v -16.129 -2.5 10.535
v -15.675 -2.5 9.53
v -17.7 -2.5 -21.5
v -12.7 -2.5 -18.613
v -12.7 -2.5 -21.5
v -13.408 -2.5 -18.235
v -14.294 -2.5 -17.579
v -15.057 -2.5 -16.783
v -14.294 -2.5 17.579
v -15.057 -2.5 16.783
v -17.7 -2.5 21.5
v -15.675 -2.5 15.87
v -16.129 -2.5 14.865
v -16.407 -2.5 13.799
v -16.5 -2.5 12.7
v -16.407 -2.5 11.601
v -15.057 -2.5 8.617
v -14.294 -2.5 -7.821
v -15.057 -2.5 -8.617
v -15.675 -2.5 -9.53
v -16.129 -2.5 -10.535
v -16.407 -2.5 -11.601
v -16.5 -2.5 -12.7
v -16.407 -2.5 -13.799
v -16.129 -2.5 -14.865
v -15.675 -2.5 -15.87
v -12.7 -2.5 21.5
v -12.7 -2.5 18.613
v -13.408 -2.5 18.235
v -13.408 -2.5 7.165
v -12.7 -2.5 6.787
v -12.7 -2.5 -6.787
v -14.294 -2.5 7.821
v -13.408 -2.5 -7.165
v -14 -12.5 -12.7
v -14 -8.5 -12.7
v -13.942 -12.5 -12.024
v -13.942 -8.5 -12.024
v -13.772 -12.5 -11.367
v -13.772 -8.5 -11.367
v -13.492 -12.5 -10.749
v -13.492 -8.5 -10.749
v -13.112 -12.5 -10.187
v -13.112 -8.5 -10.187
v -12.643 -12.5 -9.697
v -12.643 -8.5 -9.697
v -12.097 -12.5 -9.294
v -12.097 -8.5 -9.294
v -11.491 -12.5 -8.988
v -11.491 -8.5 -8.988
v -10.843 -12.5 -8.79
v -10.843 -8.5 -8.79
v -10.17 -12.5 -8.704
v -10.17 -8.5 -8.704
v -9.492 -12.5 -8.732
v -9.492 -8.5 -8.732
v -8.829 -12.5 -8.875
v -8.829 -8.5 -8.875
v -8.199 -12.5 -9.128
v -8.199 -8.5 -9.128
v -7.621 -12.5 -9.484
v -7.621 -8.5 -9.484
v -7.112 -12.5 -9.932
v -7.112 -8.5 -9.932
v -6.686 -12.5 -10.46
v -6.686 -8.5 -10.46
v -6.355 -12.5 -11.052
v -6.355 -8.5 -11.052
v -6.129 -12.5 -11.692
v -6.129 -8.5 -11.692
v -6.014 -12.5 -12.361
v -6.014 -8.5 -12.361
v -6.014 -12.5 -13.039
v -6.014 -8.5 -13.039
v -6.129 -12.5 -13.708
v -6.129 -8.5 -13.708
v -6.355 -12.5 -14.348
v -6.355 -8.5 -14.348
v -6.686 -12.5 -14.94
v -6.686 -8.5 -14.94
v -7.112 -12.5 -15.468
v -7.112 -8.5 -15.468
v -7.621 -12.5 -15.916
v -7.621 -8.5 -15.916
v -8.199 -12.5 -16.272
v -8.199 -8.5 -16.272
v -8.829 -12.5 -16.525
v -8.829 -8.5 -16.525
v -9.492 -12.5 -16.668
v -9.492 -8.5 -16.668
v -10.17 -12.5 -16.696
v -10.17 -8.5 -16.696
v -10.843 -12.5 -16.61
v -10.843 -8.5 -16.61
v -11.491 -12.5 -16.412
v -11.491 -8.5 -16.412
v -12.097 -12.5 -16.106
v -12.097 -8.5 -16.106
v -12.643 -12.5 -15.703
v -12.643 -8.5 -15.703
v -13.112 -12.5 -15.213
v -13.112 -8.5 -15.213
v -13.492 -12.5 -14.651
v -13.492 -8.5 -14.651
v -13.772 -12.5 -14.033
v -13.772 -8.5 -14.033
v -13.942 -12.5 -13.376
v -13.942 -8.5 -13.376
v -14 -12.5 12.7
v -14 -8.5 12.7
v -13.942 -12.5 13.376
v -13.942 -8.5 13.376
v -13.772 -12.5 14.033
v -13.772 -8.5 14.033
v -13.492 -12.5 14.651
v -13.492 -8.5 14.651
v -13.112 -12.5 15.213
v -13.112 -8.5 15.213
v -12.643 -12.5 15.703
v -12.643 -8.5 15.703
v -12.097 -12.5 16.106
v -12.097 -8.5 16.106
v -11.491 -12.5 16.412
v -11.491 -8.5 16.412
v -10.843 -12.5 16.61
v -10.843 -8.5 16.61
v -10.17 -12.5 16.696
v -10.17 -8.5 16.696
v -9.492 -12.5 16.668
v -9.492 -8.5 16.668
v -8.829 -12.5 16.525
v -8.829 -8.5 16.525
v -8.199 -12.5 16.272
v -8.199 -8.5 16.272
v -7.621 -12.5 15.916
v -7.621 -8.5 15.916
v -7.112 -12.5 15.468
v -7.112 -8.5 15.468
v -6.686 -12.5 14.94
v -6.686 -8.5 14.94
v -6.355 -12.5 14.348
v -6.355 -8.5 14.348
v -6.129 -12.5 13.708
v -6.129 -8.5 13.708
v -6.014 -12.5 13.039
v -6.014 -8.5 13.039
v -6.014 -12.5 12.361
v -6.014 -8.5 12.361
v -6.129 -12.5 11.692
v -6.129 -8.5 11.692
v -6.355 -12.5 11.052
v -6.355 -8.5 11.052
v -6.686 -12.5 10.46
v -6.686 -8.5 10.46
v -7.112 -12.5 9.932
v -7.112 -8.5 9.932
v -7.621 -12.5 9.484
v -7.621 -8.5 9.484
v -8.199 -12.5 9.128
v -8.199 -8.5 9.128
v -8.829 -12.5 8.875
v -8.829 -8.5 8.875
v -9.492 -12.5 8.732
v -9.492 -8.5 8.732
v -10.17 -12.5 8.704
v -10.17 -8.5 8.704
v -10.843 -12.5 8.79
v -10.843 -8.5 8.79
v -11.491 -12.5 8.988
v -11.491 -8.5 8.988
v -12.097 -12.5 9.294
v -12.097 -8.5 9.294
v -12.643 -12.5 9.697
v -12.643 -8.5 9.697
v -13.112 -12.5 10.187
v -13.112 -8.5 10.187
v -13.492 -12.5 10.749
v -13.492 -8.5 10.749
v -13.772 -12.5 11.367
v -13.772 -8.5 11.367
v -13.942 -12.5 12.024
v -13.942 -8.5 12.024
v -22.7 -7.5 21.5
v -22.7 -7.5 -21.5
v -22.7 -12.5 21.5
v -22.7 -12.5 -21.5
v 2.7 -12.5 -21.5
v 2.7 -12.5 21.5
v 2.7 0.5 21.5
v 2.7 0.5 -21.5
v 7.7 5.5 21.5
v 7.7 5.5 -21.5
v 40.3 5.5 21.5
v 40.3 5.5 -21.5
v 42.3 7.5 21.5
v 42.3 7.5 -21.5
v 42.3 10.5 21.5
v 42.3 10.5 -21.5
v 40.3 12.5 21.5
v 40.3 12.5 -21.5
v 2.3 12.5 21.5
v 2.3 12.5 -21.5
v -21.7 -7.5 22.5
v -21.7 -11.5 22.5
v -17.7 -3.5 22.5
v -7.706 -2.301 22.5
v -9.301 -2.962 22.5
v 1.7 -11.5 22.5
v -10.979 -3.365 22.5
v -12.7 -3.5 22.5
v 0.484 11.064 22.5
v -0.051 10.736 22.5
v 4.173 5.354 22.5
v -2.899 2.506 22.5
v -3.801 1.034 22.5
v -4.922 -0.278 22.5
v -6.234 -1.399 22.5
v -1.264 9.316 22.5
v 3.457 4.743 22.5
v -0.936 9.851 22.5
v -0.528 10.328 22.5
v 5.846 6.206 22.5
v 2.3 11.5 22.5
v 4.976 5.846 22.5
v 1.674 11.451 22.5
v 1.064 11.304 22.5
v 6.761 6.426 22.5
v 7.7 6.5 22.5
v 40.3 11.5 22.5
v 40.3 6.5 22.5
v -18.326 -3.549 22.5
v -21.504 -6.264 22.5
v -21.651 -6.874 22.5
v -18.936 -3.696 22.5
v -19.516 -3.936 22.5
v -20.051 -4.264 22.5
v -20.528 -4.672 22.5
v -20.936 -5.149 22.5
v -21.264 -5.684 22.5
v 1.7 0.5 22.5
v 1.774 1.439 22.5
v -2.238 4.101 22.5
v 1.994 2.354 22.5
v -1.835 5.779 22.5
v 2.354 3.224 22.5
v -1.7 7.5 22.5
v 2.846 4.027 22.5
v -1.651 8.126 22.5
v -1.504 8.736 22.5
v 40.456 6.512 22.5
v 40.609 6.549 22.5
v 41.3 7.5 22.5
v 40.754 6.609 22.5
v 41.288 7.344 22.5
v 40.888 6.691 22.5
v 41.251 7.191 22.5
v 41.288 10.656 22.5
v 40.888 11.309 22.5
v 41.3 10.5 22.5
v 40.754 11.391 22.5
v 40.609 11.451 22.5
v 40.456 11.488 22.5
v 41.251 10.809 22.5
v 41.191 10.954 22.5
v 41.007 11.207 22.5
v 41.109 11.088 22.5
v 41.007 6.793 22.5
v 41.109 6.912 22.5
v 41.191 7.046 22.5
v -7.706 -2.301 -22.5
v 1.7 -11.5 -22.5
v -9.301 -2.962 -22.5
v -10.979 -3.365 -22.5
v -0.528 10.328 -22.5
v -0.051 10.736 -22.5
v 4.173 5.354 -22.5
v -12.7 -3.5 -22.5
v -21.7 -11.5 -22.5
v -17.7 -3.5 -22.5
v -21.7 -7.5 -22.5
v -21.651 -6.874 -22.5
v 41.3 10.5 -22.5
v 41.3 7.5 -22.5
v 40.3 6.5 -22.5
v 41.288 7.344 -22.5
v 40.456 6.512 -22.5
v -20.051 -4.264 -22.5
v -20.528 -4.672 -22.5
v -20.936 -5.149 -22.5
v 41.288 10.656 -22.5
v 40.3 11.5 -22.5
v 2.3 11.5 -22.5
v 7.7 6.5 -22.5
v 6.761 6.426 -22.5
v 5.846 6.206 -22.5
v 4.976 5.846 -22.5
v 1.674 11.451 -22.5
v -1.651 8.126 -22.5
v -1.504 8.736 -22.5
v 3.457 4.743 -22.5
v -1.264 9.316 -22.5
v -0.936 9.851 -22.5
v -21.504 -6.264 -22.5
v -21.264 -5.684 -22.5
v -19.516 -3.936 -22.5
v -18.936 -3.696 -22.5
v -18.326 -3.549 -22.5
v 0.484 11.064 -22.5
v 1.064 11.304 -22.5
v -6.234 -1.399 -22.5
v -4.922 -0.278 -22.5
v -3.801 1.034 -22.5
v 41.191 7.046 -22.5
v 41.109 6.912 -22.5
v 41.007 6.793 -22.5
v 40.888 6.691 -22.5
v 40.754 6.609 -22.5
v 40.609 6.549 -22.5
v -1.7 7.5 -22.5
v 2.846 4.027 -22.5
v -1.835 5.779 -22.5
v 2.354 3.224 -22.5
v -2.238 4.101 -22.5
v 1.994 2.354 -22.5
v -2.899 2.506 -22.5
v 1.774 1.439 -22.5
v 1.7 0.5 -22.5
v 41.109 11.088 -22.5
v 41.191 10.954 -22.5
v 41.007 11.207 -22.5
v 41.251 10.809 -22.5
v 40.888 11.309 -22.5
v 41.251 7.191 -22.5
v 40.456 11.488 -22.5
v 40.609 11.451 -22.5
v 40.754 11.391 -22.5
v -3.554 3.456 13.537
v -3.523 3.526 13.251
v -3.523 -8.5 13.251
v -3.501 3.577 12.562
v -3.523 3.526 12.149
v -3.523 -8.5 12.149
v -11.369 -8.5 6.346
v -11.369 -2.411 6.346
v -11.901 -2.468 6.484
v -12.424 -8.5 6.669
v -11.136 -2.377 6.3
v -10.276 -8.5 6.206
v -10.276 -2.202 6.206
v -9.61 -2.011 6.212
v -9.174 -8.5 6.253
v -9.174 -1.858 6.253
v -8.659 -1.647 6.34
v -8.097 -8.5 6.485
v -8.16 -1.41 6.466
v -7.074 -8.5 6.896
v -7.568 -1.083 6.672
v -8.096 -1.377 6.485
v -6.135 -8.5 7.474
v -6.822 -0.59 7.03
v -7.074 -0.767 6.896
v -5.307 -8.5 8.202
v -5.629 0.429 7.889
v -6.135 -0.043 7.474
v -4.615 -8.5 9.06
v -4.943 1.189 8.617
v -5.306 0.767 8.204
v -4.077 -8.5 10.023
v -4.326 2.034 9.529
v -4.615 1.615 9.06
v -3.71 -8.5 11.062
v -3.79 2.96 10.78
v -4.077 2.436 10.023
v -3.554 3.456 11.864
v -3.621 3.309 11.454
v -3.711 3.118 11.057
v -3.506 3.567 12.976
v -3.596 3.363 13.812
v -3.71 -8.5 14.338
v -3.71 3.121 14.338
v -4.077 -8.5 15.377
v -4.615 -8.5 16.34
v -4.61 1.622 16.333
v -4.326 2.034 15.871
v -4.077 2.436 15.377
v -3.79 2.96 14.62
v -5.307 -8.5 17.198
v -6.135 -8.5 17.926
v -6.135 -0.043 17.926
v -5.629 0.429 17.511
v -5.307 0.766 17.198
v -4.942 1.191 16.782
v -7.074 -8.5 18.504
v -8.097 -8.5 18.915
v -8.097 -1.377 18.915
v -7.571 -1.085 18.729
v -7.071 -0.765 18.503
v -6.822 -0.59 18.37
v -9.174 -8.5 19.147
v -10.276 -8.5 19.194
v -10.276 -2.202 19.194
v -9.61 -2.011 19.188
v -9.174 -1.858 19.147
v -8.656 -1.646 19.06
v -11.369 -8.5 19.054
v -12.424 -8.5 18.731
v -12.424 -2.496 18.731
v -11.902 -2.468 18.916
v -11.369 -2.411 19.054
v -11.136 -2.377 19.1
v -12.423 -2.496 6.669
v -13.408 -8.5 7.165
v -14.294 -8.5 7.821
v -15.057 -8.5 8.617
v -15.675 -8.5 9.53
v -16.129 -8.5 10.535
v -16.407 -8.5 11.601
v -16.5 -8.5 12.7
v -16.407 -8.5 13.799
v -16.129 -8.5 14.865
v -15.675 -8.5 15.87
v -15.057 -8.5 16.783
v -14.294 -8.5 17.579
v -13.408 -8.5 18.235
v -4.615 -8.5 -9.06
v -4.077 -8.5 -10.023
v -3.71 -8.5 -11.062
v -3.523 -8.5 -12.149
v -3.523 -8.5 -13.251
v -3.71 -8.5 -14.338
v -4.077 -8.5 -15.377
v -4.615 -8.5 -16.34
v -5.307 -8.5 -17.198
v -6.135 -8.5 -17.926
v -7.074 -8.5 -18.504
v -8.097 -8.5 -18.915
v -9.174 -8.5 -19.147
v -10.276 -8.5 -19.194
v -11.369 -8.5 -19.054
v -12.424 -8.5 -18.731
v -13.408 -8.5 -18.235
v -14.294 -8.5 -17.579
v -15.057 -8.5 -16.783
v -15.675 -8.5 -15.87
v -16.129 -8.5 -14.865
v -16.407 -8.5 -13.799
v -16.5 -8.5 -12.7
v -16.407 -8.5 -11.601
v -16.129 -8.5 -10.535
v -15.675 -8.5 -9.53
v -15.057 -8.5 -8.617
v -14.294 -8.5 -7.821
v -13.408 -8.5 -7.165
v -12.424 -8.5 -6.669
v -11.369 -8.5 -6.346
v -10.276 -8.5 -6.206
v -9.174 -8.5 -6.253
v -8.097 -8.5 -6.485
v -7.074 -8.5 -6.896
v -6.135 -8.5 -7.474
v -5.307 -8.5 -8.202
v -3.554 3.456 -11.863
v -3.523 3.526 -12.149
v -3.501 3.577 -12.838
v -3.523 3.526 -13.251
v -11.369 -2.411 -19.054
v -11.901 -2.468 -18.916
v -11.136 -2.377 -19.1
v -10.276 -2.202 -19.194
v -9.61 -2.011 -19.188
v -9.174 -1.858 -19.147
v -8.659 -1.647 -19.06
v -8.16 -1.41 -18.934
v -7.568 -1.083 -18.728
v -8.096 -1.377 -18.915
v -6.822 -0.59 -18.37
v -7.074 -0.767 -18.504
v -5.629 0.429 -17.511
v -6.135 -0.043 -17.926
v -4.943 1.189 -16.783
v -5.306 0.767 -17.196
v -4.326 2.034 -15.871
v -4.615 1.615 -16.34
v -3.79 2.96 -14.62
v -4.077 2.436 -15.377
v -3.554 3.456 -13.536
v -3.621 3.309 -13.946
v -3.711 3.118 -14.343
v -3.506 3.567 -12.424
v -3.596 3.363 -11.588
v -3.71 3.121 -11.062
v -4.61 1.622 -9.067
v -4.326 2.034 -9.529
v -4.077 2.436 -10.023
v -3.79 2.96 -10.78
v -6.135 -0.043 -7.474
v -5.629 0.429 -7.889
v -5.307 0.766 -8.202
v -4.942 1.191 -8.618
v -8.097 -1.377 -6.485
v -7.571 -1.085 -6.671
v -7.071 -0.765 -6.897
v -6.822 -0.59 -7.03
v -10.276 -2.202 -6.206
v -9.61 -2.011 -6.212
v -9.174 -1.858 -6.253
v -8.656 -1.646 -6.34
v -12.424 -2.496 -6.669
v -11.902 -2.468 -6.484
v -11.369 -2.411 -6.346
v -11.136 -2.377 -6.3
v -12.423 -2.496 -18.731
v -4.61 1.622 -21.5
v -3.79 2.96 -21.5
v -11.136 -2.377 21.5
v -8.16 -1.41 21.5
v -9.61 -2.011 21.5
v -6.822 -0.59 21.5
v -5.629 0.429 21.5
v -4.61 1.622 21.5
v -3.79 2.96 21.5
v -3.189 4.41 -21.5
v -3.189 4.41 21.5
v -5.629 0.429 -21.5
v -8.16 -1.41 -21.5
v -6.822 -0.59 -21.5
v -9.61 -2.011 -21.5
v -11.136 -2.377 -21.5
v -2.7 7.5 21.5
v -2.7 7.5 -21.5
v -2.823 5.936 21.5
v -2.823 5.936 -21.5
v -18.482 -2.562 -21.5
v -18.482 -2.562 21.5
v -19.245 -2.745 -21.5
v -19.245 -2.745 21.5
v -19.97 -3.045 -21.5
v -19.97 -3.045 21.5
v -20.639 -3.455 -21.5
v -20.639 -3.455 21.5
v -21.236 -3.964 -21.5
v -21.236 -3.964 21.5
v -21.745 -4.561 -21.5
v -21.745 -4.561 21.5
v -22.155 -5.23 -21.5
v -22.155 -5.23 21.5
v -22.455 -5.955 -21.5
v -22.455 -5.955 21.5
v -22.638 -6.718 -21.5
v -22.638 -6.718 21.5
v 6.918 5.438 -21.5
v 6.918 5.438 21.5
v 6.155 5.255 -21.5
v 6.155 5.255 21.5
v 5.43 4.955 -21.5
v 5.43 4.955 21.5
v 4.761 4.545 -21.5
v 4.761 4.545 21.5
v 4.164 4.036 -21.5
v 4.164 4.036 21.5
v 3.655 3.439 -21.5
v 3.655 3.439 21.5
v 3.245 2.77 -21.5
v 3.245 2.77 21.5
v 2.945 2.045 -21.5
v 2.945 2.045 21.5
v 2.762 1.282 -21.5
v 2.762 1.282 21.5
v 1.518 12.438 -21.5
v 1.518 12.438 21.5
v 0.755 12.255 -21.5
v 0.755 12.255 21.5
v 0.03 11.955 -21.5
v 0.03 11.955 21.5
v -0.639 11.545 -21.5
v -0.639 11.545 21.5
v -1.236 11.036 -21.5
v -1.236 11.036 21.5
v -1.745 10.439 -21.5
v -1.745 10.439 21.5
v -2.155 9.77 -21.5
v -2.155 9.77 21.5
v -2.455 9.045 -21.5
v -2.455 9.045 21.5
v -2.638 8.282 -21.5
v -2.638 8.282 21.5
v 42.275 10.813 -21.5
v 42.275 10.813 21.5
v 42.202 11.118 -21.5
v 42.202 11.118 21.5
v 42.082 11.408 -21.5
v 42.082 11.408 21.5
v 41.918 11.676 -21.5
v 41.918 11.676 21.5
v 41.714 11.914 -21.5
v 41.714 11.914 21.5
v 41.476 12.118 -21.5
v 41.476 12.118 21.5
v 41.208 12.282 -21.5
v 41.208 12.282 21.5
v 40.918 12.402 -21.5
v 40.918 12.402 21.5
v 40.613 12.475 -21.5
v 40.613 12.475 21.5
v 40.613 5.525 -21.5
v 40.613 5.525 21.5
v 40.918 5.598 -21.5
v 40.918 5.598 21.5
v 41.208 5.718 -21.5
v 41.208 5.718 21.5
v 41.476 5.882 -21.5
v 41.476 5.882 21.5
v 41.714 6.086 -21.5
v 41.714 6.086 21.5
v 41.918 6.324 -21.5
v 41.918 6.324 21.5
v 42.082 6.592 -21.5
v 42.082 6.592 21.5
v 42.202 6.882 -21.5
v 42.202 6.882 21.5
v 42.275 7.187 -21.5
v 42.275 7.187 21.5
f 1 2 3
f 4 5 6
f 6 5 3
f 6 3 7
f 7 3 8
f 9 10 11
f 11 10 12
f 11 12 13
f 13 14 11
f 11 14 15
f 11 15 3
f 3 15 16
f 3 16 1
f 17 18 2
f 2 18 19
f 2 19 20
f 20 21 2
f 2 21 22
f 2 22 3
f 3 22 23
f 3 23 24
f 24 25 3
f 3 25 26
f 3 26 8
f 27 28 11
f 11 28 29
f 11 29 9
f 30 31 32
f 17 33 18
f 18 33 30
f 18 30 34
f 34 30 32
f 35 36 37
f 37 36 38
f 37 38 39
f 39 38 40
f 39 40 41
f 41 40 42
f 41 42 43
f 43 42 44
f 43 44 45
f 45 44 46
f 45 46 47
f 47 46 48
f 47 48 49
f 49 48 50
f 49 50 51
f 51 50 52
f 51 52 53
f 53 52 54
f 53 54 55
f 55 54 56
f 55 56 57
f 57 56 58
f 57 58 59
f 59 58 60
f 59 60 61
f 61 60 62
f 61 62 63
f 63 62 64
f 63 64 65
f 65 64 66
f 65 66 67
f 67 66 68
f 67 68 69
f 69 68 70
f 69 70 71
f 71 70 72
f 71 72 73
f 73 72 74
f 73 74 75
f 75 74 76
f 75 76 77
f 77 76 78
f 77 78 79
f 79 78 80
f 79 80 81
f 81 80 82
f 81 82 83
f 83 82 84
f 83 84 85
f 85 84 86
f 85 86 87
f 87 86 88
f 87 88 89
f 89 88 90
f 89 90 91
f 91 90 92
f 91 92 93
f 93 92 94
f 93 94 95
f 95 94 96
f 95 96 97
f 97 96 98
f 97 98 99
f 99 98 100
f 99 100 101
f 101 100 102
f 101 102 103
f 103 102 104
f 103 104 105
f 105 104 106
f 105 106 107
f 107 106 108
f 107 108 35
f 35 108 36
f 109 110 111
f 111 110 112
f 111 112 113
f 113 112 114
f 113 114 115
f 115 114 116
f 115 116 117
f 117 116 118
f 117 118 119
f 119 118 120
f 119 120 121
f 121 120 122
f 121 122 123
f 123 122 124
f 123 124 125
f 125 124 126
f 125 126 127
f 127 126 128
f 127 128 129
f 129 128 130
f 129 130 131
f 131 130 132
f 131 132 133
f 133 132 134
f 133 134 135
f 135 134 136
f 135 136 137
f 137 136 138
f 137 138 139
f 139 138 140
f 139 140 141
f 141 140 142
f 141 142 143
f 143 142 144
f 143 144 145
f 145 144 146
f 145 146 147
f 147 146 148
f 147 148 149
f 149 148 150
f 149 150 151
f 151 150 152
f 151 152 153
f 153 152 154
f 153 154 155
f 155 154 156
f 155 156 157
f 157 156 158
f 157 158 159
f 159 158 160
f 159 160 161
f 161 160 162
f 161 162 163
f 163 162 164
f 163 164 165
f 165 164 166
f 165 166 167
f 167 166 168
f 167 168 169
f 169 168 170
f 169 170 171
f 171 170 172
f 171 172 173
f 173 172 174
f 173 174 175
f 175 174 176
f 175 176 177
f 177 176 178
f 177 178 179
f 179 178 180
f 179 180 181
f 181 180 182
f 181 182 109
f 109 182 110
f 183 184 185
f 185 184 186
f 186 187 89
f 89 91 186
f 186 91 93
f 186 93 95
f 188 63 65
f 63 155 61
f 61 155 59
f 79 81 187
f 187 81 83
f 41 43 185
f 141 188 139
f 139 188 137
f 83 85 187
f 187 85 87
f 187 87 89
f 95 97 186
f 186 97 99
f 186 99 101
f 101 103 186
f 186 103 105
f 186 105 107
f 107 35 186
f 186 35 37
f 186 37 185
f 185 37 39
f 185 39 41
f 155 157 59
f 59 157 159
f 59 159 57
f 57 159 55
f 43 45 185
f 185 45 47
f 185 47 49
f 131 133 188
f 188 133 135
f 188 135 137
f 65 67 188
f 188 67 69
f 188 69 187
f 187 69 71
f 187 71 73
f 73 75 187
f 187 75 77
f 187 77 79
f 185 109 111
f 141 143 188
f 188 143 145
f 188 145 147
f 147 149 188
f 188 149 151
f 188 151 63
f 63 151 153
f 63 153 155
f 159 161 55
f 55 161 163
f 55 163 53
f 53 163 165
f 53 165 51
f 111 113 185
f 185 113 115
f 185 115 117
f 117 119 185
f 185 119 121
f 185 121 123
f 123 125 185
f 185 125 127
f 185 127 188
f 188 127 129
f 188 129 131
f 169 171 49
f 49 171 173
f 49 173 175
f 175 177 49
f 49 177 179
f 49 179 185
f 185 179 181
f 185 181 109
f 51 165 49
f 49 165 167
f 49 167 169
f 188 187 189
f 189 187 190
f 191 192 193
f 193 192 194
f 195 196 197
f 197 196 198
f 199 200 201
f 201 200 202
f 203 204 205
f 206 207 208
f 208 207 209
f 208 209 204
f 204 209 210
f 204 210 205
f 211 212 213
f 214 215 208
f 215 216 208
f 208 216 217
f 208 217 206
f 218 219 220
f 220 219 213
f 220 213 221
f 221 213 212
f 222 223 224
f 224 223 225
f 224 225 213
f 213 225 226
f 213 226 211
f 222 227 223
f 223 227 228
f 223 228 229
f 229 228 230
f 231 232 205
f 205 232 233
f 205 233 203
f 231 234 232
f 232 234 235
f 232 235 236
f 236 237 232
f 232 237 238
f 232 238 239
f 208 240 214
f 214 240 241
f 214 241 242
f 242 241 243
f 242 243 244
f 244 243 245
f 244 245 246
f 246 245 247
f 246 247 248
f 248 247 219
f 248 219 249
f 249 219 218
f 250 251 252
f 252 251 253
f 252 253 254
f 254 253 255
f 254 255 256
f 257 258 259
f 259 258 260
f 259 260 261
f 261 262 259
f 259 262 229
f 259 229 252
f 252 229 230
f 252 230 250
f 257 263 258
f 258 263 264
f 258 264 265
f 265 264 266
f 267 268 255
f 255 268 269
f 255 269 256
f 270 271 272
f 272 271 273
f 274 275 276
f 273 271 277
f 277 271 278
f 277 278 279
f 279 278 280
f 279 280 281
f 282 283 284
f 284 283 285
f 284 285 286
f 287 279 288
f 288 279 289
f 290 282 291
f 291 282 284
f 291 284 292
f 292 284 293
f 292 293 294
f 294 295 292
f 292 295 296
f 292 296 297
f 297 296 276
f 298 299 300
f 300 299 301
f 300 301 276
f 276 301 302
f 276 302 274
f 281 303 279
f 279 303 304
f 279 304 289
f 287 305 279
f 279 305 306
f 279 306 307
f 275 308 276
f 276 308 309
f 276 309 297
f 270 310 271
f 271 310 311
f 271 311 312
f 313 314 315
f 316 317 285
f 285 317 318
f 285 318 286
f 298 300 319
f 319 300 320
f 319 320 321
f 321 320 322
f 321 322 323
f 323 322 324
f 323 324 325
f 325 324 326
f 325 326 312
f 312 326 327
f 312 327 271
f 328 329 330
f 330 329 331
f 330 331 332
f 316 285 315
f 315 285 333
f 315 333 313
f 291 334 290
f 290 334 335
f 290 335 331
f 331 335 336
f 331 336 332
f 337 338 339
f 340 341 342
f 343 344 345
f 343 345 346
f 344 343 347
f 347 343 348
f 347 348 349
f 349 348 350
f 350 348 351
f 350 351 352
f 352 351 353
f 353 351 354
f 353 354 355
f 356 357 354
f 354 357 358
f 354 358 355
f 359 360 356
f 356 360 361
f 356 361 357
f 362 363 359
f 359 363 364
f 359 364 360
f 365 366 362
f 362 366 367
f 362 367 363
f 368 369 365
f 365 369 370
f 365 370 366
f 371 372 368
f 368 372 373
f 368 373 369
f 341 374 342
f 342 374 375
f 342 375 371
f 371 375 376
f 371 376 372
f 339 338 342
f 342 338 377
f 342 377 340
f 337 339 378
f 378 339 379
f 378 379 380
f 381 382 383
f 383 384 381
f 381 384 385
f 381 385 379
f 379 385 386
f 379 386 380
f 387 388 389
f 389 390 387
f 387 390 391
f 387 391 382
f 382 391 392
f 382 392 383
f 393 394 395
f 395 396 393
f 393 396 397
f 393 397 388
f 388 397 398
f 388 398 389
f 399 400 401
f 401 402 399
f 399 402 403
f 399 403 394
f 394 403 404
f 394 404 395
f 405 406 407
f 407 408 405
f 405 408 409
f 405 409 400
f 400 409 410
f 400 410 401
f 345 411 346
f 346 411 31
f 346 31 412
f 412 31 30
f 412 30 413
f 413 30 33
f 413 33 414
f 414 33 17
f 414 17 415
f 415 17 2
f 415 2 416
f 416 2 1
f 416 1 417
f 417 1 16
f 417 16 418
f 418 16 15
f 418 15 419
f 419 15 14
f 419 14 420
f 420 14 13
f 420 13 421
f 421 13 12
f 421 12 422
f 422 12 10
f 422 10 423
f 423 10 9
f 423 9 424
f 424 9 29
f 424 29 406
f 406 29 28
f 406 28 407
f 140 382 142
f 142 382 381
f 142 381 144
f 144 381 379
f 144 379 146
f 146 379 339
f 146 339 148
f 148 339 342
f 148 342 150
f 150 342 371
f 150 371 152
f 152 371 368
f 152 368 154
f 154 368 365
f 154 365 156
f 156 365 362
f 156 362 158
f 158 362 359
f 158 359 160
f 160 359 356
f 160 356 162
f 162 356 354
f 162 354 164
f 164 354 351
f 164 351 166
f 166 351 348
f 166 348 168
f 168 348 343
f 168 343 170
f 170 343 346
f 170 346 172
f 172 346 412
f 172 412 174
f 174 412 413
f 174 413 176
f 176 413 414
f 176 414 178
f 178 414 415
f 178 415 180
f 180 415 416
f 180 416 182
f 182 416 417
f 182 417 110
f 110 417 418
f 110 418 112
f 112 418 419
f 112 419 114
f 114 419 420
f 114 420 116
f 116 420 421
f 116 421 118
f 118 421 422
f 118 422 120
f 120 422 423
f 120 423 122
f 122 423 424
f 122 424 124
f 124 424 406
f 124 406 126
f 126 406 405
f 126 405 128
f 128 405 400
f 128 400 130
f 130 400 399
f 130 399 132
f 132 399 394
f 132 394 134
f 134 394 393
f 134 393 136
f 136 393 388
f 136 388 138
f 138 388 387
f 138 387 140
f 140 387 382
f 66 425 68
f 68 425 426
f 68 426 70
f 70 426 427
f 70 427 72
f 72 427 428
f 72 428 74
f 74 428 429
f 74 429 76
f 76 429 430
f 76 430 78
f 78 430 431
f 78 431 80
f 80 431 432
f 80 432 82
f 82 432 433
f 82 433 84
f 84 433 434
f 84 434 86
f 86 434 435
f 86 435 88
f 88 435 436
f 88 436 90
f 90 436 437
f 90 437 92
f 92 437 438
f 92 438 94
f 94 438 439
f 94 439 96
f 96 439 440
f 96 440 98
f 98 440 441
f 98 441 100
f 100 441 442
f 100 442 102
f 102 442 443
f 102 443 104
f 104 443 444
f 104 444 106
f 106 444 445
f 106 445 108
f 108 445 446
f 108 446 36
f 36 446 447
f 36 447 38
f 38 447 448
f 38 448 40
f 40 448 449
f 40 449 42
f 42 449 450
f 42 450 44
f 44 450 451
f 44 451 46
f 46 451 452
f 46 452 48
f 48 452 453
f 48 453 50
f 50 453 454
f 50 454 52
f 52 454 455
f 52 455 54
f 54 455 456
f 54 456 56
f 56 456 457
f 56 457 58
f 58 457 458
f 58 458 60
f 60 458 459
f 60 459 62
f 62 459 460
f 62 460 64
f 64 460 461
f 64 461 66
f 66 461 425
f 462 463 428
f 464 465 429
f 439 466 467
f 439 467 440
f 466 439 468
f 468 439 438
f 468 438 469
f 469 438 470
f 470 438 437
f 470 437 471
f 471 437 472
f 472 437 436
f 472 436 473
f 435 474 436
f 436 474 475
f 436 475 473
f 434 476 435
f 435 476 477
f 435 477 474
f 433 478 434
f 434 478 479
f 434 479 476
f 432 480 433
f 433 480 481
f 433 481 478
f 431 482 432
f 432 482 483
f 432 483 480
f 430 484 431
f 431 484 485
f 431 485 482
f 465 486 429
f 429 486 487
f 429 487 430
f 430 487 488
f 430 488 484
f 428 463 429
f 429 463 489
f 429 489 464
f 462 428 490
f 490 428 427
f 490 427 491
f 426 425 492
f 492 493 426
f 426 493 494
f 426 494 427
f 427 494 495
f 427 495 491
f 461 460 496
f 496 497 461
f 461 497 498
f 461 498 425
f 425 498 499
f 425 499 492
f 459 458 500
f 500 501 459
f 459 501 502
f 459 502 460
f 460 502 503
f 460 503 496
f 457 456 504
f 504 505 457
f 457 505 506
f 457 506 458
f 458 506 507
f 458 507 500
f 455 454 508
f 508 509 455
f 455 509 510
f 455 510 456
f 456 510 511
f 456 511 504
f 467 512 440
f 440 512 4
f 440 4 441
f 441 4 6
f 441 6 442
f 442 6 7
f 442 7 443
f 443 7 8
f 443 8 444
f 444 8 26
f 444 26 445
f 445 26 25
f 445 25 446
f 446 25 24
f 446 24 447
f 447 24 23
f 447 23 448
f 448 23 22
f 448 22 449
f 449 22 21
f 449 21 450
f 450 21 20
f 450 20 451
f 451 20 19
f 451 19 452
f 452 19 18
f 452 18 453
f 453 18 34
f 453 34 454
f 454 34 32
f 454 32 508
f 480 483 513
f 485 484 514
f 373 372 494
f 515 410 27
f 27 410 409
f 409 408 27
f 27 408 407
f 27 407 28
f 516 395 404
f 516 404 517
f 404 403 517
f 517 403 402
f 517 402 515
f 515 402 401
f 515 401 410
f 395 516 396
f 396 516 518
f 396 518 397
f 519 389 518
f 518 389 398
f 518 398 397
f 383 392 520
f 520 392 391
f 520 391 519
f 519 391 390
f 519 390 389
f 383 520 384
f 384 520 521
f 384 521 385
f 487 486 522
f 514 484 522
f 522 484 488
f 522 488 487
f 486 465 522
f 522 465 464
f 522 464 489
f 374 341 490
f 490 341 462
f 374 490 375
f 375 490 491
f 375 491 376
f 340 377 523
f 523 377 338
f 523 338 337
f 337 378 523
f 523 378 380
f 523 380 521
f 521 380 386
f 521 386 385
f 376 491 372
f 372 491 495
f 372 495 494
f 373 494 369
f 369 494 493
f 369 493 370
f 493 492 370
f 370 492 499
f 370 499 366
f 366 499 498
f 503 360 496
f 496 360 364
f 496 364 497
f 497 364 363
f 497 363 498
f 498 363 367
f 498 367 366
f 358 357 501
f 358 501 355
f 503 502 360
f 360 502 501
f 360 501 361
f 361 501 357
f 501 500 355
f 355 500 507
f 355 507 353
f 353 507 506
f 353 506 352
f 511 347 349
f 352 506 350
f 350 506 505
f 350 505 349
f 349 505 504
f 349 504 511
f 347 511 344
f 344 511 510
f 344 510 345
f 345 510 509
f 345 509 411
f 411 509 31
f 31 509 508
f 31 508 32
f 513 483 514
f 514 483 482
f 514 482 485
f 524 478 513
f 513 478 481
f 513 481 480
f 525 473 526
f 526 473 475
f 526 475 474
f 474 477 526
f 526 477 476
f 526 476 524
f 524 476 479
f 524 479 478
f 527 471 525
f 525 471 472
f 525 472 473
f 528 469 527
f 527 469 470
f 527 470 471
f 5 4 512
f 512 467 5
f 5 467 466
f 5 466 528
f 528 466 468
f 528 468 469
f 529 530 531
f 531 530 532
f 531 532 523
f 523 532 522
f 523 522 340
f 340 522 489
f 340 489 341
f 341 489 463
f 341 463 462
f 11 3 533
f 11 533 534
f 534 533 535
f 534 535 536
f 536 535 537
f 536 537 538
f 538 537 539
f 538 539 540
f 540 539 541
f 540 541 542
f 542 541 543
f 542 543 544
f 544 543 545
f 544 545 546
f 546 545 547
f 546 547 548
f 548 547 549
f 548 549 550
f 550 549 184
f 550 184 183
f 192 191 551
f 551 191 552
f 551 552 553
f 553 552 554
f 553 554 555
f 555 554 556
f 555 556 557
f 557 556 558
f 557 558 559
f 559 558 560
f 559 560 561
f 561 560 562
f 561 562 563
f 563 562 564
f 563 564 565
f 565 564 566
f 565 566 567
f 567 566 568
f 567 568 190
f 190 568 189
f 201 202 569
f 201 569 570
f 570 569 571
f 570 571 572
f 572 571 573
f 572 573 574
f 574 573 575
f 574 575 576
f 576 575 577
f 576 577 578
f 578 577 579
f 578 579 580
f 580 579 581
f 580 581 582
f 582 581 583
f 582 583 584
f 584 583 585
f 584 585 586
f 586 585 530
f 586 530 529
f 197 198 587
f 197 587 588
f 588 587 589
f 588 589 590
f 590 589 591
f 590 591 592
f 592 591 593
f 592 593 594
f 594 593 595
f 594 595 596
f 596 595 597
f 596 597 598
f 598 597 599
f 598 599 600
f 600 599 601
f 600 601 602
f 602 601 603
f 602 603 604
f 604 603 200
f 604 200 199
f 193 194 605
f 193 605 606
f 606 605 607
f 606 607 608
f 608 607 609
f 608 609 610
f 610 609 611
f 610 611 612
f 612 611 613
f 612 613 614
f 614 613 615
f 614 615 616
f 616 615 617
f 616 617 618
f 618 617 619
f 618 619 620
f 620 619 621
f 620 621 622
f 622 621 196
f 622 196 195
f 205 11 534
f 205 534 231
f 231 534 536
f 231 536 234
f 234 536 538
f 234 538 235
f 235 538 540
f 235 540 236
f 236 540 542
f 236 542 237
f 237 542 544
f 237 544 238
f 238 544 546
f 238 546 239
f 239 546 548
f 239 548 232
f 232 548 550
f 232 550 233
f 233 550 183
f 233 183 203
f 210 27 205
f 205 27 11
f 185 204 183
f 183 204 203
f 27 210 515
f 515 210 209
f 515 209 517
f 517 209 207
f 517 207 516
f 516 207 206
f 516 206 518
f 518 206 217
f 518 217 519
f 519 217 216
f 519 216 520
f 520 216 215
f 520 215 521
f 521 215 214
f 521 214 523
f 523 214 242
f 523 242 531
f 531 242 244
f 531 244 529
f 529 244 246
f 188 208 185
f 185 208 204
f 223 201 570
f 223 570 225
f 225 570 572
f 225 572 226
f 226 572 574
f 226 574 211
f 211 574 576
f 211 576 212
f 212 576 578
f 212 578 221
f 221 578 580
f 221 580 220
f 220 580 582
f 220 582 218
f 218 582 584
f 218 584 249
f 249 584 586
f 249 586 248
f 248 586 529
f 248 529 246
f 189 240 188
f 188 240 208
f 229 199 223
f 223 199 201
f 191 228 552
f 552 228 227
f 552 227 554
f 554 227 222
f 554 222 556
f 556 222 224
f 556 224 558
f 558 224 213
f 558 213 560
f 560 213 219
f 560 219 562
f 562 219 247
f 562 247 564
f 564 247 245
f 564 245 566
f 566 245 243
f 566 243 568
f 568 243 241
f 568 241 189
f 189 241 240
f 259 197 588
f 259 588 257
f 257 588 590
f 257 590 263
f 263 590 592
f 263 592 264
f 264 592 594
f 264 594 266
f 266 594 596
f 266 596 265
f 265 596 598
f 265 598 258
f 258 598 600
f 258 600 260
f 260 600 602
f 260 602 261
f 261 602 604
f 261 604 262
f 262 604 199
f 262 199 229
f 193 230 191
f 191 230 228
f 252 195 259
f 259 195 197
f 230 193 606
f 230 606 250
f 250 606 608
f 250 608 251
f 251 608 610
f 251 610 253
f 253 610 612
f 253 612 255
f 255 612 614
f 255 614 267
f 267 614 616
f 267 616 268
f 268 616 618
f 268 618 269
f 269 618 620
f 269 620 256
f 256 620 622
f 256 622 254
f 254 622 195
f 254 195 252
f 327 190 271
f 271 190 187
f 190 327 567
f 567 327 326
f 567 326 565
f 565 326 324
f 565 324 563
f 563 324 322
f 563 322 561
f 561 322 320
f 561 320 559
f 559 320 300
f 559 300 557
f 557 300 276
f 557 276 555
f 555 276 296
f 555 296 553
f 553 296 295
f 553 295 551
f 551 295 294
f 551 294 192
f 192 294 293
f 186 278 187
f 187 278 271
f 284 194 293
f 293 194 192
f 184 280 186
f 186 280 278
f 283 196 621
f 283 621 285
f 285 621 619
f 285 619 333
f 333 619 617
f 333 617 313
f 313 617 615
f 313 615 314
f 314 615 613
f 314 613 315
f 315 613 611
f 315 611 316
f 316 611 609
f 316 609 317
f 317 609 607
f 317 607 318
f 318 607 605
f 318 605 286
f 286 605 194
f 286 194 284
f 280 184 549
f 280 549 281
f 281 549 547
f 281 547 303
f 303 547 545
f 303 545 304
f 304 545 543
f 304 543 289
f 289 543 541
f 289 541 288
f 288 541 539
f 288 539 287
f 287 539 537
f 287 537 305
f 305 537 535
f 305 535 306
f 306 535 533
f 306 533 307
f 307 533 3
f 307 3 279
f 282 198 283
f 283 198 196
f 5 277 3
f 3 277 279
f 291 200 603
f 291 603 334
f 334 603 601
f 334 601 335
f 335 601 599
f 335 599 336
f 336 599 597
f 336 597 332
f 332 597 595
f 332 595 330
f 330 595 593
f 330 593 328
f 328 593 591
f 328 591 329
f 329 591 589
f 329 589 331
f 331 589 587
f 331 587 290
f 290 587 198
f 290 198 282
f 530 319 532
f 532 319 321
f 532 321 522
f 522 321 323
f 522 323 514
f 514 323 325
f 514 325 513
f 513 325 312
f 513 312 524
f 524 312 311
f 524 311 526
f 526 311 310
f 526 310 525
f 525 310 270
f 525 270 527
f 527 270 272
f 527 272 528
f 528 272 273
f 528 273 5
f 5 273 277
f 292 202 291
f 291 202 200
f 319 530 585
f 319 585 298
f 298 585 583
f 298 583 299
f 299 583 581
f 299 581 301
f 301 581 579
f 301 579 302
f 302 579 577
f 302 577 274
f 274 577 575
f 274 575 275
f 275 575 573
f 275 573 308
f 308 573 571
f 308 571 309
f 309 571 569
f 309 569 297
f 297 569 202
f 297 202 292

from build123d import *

# Parameters (mm, degrees)
BOSS_EXTRUDE1_DEPTH = 22.5
SKETCH3_R           = 4
CUT_EXTRUDE1_DEPTH  = 51.204979833
SKETCH3_4_R         = 6.5
SKETCH3_4_R_2       = 4
CUT_EXTRUDE2_DEPTH  = 6
FILLET1_R           = 10
FILLET2_R           = 5
FILLET4_R           = 2
CHAMFER1_SIZE       = 1


# Some blends are built 0.0001 mm under size
with BuildPart() as part:
    # Sketch1 → Boss-Extrude1 (new, symmetric)
    with BuildSketch(Plane.XY):
        Polygon((-22.7, -12.5), (2.7, -12.5), (2.7, 5.5), (42.3, 5.5), (42.3, 12.5), (-2.7, 12.5), (-2.7, -2.5), (-22.7, -2.5), align=None)
    extrude(amount=BOSS_EXTRUDE1_DEPTH, both=True)

    # Sketch3 → Cut-Extrude1 (cut, through all)
    with BuildSketch(Plane(origin=(0, -2.5, 0), x_dir=(1, 0, 0), z_dir=(0, 1, 0))):
        with Locations(Location((-10, -12.7, 0), (0, 0, 180))):
            Circle(SKETCH3_R)
    cut_extrude1 = extrude(amount=-CUT_EXTRUDE1_DEPTH, mode=Mode.SUBTRACT)

    # Sketch3<4> → Cut-Extrude2 (cut)
    with BuildSketch(Plane(origin=(0, -2.5, 0), x_dir=(1, 0, 0), z_dir=(0, 1, 0))):
        with Locations(Location((-10, -12.7, 0), (0, 0, 180))):
            Circle(SKETCH3_4_R)
        with Locations(Location((-10, -12.7, 0), (0, 0, 180))):
            Circle(SKETCH3_4_R_2, mode=Mode.SUBTRACT)
    cut_extrude2 = extrude(amount=-CUT_EXTRUDE2_DEPTH, mode=Mode.SUBTRACT)

    # Mirror1: Cut-Extrude1, Cut-Extrude2 across plane
    add(cut_extrude1.mirror(Plane.XY), mode=Mode.SUBTRACT)
    add(cut_extrude2.mirror(Plane.XY), mode=Mode.SUBTRACT)

    # Fillet1
    # the kernel refuses this fillet: 10 mm, written as the material it adds along each edge
    with BuildSketch(Plane(origin=(-2.7, -2.5, 22.5), x_dir=(0, 1, 0), z_dir=(0, 0, -1))) as fillet1_piece_1_section:
        with BuildLine():
            CenterArc((FILLET1_R, -FILLET1_R), FILLET1_R, 90, 90)
            Line((0, -FILLET1_R), (0, 0))
            Line((0, 0), (FILLET1_R, 0))
        make_face()
    fillet1_piece_1 = extrude(amount=45, mode=Mode.PRIVATE)
    fillet1_piece_1 = fillet1_piece_1 - Plane(origin=(-10, 0.155378063, -12.7), x_dir=(-1, 0, 0), z_dir=(0, 1, 0)) * Cylinder(6.5, 130, mode=Mode.PRIVATE)
    fillet1_piece_1 = fillet1_piece_1 - Plane(origin=(-10, 0.155378063, 12.7), x_dir=(-1, 0, 0), z_dir=(0, 1, 0)) * Cylinder(6.5, 130, mode=Mode.PRIVATE)
    add(fillet1_piece_1)

    # Fillet2
    fillet2_edges = [part.edges().sort_by_distance(p)[0] for p in [
        (2.7, 5.5, 0),
        (-22.7, -2.5, 0),
        (-2.7, 12.5, 0),
    ]]
    fillet(fillet2_edges, radius=FILLET2_R - 0.0001)  # a hair under: the kernel refuses the full size

    # Fillet4
    fillet4_edges = [part.edges().sort_by_distance(p)[0] for p in [
        (42.3, 12.5, 0),
        (42.3, 5.5, 0),
    ]]
    fillet(fillet4_edges, radius=FILLET4_R)

    # Chamfer1
    chamfer1_edges = [part.edges().sort_by_distance(p)[0] for p in [
        (2.7, -5.99995, -22.5),
        (-10, -12.5, -22.5),
        (2.7, -5.99995, 22.5),
        (-15.20005, -2.5, -22.5),
        (-15.20005, -2.5, 22.5),
        (-5.628932188, 0.428932188, -22.5),
        (-5.628932188, 0.428932188, 22.5),
        (-22.7, -9.99995, -22.5),
        (-22.7, -9.99995, 22.5),
        (23.99995, 5.5, -22.5),
        (-1.235563195, 11.035563195, -22.5),
        (-21.235563195, -3.964436805, -22.5),
        (23.99995, 5.5, 22.5),
        (-1.235563195, 11.035563195, 22.5),
        (-21.235563195, -3.964436805, 22.5),
        (4.164436805, 4.035563195, -22.5),
        (4.164436805, 4.035563195, 22.5),
        (21.29995, 12.5, -22.5),
        (21.29995, 12.5, 22.5),
        (42.3, 9, -22.5),
        (41.714213562, 6.085786438, -22.5),
        (41.714213562, 11.914213562, -22.5),
        (42.3, 9, 22.5),
        (41.714213562, 6.085786438, 22.5),
        (41.714213562, 11.914213562, 22.5),
        (-10, -12.5, 22.5),
    ]]
    chamfer(chamfer1_edges, length=CHAMFER1_SIZE)


solid = part.part
